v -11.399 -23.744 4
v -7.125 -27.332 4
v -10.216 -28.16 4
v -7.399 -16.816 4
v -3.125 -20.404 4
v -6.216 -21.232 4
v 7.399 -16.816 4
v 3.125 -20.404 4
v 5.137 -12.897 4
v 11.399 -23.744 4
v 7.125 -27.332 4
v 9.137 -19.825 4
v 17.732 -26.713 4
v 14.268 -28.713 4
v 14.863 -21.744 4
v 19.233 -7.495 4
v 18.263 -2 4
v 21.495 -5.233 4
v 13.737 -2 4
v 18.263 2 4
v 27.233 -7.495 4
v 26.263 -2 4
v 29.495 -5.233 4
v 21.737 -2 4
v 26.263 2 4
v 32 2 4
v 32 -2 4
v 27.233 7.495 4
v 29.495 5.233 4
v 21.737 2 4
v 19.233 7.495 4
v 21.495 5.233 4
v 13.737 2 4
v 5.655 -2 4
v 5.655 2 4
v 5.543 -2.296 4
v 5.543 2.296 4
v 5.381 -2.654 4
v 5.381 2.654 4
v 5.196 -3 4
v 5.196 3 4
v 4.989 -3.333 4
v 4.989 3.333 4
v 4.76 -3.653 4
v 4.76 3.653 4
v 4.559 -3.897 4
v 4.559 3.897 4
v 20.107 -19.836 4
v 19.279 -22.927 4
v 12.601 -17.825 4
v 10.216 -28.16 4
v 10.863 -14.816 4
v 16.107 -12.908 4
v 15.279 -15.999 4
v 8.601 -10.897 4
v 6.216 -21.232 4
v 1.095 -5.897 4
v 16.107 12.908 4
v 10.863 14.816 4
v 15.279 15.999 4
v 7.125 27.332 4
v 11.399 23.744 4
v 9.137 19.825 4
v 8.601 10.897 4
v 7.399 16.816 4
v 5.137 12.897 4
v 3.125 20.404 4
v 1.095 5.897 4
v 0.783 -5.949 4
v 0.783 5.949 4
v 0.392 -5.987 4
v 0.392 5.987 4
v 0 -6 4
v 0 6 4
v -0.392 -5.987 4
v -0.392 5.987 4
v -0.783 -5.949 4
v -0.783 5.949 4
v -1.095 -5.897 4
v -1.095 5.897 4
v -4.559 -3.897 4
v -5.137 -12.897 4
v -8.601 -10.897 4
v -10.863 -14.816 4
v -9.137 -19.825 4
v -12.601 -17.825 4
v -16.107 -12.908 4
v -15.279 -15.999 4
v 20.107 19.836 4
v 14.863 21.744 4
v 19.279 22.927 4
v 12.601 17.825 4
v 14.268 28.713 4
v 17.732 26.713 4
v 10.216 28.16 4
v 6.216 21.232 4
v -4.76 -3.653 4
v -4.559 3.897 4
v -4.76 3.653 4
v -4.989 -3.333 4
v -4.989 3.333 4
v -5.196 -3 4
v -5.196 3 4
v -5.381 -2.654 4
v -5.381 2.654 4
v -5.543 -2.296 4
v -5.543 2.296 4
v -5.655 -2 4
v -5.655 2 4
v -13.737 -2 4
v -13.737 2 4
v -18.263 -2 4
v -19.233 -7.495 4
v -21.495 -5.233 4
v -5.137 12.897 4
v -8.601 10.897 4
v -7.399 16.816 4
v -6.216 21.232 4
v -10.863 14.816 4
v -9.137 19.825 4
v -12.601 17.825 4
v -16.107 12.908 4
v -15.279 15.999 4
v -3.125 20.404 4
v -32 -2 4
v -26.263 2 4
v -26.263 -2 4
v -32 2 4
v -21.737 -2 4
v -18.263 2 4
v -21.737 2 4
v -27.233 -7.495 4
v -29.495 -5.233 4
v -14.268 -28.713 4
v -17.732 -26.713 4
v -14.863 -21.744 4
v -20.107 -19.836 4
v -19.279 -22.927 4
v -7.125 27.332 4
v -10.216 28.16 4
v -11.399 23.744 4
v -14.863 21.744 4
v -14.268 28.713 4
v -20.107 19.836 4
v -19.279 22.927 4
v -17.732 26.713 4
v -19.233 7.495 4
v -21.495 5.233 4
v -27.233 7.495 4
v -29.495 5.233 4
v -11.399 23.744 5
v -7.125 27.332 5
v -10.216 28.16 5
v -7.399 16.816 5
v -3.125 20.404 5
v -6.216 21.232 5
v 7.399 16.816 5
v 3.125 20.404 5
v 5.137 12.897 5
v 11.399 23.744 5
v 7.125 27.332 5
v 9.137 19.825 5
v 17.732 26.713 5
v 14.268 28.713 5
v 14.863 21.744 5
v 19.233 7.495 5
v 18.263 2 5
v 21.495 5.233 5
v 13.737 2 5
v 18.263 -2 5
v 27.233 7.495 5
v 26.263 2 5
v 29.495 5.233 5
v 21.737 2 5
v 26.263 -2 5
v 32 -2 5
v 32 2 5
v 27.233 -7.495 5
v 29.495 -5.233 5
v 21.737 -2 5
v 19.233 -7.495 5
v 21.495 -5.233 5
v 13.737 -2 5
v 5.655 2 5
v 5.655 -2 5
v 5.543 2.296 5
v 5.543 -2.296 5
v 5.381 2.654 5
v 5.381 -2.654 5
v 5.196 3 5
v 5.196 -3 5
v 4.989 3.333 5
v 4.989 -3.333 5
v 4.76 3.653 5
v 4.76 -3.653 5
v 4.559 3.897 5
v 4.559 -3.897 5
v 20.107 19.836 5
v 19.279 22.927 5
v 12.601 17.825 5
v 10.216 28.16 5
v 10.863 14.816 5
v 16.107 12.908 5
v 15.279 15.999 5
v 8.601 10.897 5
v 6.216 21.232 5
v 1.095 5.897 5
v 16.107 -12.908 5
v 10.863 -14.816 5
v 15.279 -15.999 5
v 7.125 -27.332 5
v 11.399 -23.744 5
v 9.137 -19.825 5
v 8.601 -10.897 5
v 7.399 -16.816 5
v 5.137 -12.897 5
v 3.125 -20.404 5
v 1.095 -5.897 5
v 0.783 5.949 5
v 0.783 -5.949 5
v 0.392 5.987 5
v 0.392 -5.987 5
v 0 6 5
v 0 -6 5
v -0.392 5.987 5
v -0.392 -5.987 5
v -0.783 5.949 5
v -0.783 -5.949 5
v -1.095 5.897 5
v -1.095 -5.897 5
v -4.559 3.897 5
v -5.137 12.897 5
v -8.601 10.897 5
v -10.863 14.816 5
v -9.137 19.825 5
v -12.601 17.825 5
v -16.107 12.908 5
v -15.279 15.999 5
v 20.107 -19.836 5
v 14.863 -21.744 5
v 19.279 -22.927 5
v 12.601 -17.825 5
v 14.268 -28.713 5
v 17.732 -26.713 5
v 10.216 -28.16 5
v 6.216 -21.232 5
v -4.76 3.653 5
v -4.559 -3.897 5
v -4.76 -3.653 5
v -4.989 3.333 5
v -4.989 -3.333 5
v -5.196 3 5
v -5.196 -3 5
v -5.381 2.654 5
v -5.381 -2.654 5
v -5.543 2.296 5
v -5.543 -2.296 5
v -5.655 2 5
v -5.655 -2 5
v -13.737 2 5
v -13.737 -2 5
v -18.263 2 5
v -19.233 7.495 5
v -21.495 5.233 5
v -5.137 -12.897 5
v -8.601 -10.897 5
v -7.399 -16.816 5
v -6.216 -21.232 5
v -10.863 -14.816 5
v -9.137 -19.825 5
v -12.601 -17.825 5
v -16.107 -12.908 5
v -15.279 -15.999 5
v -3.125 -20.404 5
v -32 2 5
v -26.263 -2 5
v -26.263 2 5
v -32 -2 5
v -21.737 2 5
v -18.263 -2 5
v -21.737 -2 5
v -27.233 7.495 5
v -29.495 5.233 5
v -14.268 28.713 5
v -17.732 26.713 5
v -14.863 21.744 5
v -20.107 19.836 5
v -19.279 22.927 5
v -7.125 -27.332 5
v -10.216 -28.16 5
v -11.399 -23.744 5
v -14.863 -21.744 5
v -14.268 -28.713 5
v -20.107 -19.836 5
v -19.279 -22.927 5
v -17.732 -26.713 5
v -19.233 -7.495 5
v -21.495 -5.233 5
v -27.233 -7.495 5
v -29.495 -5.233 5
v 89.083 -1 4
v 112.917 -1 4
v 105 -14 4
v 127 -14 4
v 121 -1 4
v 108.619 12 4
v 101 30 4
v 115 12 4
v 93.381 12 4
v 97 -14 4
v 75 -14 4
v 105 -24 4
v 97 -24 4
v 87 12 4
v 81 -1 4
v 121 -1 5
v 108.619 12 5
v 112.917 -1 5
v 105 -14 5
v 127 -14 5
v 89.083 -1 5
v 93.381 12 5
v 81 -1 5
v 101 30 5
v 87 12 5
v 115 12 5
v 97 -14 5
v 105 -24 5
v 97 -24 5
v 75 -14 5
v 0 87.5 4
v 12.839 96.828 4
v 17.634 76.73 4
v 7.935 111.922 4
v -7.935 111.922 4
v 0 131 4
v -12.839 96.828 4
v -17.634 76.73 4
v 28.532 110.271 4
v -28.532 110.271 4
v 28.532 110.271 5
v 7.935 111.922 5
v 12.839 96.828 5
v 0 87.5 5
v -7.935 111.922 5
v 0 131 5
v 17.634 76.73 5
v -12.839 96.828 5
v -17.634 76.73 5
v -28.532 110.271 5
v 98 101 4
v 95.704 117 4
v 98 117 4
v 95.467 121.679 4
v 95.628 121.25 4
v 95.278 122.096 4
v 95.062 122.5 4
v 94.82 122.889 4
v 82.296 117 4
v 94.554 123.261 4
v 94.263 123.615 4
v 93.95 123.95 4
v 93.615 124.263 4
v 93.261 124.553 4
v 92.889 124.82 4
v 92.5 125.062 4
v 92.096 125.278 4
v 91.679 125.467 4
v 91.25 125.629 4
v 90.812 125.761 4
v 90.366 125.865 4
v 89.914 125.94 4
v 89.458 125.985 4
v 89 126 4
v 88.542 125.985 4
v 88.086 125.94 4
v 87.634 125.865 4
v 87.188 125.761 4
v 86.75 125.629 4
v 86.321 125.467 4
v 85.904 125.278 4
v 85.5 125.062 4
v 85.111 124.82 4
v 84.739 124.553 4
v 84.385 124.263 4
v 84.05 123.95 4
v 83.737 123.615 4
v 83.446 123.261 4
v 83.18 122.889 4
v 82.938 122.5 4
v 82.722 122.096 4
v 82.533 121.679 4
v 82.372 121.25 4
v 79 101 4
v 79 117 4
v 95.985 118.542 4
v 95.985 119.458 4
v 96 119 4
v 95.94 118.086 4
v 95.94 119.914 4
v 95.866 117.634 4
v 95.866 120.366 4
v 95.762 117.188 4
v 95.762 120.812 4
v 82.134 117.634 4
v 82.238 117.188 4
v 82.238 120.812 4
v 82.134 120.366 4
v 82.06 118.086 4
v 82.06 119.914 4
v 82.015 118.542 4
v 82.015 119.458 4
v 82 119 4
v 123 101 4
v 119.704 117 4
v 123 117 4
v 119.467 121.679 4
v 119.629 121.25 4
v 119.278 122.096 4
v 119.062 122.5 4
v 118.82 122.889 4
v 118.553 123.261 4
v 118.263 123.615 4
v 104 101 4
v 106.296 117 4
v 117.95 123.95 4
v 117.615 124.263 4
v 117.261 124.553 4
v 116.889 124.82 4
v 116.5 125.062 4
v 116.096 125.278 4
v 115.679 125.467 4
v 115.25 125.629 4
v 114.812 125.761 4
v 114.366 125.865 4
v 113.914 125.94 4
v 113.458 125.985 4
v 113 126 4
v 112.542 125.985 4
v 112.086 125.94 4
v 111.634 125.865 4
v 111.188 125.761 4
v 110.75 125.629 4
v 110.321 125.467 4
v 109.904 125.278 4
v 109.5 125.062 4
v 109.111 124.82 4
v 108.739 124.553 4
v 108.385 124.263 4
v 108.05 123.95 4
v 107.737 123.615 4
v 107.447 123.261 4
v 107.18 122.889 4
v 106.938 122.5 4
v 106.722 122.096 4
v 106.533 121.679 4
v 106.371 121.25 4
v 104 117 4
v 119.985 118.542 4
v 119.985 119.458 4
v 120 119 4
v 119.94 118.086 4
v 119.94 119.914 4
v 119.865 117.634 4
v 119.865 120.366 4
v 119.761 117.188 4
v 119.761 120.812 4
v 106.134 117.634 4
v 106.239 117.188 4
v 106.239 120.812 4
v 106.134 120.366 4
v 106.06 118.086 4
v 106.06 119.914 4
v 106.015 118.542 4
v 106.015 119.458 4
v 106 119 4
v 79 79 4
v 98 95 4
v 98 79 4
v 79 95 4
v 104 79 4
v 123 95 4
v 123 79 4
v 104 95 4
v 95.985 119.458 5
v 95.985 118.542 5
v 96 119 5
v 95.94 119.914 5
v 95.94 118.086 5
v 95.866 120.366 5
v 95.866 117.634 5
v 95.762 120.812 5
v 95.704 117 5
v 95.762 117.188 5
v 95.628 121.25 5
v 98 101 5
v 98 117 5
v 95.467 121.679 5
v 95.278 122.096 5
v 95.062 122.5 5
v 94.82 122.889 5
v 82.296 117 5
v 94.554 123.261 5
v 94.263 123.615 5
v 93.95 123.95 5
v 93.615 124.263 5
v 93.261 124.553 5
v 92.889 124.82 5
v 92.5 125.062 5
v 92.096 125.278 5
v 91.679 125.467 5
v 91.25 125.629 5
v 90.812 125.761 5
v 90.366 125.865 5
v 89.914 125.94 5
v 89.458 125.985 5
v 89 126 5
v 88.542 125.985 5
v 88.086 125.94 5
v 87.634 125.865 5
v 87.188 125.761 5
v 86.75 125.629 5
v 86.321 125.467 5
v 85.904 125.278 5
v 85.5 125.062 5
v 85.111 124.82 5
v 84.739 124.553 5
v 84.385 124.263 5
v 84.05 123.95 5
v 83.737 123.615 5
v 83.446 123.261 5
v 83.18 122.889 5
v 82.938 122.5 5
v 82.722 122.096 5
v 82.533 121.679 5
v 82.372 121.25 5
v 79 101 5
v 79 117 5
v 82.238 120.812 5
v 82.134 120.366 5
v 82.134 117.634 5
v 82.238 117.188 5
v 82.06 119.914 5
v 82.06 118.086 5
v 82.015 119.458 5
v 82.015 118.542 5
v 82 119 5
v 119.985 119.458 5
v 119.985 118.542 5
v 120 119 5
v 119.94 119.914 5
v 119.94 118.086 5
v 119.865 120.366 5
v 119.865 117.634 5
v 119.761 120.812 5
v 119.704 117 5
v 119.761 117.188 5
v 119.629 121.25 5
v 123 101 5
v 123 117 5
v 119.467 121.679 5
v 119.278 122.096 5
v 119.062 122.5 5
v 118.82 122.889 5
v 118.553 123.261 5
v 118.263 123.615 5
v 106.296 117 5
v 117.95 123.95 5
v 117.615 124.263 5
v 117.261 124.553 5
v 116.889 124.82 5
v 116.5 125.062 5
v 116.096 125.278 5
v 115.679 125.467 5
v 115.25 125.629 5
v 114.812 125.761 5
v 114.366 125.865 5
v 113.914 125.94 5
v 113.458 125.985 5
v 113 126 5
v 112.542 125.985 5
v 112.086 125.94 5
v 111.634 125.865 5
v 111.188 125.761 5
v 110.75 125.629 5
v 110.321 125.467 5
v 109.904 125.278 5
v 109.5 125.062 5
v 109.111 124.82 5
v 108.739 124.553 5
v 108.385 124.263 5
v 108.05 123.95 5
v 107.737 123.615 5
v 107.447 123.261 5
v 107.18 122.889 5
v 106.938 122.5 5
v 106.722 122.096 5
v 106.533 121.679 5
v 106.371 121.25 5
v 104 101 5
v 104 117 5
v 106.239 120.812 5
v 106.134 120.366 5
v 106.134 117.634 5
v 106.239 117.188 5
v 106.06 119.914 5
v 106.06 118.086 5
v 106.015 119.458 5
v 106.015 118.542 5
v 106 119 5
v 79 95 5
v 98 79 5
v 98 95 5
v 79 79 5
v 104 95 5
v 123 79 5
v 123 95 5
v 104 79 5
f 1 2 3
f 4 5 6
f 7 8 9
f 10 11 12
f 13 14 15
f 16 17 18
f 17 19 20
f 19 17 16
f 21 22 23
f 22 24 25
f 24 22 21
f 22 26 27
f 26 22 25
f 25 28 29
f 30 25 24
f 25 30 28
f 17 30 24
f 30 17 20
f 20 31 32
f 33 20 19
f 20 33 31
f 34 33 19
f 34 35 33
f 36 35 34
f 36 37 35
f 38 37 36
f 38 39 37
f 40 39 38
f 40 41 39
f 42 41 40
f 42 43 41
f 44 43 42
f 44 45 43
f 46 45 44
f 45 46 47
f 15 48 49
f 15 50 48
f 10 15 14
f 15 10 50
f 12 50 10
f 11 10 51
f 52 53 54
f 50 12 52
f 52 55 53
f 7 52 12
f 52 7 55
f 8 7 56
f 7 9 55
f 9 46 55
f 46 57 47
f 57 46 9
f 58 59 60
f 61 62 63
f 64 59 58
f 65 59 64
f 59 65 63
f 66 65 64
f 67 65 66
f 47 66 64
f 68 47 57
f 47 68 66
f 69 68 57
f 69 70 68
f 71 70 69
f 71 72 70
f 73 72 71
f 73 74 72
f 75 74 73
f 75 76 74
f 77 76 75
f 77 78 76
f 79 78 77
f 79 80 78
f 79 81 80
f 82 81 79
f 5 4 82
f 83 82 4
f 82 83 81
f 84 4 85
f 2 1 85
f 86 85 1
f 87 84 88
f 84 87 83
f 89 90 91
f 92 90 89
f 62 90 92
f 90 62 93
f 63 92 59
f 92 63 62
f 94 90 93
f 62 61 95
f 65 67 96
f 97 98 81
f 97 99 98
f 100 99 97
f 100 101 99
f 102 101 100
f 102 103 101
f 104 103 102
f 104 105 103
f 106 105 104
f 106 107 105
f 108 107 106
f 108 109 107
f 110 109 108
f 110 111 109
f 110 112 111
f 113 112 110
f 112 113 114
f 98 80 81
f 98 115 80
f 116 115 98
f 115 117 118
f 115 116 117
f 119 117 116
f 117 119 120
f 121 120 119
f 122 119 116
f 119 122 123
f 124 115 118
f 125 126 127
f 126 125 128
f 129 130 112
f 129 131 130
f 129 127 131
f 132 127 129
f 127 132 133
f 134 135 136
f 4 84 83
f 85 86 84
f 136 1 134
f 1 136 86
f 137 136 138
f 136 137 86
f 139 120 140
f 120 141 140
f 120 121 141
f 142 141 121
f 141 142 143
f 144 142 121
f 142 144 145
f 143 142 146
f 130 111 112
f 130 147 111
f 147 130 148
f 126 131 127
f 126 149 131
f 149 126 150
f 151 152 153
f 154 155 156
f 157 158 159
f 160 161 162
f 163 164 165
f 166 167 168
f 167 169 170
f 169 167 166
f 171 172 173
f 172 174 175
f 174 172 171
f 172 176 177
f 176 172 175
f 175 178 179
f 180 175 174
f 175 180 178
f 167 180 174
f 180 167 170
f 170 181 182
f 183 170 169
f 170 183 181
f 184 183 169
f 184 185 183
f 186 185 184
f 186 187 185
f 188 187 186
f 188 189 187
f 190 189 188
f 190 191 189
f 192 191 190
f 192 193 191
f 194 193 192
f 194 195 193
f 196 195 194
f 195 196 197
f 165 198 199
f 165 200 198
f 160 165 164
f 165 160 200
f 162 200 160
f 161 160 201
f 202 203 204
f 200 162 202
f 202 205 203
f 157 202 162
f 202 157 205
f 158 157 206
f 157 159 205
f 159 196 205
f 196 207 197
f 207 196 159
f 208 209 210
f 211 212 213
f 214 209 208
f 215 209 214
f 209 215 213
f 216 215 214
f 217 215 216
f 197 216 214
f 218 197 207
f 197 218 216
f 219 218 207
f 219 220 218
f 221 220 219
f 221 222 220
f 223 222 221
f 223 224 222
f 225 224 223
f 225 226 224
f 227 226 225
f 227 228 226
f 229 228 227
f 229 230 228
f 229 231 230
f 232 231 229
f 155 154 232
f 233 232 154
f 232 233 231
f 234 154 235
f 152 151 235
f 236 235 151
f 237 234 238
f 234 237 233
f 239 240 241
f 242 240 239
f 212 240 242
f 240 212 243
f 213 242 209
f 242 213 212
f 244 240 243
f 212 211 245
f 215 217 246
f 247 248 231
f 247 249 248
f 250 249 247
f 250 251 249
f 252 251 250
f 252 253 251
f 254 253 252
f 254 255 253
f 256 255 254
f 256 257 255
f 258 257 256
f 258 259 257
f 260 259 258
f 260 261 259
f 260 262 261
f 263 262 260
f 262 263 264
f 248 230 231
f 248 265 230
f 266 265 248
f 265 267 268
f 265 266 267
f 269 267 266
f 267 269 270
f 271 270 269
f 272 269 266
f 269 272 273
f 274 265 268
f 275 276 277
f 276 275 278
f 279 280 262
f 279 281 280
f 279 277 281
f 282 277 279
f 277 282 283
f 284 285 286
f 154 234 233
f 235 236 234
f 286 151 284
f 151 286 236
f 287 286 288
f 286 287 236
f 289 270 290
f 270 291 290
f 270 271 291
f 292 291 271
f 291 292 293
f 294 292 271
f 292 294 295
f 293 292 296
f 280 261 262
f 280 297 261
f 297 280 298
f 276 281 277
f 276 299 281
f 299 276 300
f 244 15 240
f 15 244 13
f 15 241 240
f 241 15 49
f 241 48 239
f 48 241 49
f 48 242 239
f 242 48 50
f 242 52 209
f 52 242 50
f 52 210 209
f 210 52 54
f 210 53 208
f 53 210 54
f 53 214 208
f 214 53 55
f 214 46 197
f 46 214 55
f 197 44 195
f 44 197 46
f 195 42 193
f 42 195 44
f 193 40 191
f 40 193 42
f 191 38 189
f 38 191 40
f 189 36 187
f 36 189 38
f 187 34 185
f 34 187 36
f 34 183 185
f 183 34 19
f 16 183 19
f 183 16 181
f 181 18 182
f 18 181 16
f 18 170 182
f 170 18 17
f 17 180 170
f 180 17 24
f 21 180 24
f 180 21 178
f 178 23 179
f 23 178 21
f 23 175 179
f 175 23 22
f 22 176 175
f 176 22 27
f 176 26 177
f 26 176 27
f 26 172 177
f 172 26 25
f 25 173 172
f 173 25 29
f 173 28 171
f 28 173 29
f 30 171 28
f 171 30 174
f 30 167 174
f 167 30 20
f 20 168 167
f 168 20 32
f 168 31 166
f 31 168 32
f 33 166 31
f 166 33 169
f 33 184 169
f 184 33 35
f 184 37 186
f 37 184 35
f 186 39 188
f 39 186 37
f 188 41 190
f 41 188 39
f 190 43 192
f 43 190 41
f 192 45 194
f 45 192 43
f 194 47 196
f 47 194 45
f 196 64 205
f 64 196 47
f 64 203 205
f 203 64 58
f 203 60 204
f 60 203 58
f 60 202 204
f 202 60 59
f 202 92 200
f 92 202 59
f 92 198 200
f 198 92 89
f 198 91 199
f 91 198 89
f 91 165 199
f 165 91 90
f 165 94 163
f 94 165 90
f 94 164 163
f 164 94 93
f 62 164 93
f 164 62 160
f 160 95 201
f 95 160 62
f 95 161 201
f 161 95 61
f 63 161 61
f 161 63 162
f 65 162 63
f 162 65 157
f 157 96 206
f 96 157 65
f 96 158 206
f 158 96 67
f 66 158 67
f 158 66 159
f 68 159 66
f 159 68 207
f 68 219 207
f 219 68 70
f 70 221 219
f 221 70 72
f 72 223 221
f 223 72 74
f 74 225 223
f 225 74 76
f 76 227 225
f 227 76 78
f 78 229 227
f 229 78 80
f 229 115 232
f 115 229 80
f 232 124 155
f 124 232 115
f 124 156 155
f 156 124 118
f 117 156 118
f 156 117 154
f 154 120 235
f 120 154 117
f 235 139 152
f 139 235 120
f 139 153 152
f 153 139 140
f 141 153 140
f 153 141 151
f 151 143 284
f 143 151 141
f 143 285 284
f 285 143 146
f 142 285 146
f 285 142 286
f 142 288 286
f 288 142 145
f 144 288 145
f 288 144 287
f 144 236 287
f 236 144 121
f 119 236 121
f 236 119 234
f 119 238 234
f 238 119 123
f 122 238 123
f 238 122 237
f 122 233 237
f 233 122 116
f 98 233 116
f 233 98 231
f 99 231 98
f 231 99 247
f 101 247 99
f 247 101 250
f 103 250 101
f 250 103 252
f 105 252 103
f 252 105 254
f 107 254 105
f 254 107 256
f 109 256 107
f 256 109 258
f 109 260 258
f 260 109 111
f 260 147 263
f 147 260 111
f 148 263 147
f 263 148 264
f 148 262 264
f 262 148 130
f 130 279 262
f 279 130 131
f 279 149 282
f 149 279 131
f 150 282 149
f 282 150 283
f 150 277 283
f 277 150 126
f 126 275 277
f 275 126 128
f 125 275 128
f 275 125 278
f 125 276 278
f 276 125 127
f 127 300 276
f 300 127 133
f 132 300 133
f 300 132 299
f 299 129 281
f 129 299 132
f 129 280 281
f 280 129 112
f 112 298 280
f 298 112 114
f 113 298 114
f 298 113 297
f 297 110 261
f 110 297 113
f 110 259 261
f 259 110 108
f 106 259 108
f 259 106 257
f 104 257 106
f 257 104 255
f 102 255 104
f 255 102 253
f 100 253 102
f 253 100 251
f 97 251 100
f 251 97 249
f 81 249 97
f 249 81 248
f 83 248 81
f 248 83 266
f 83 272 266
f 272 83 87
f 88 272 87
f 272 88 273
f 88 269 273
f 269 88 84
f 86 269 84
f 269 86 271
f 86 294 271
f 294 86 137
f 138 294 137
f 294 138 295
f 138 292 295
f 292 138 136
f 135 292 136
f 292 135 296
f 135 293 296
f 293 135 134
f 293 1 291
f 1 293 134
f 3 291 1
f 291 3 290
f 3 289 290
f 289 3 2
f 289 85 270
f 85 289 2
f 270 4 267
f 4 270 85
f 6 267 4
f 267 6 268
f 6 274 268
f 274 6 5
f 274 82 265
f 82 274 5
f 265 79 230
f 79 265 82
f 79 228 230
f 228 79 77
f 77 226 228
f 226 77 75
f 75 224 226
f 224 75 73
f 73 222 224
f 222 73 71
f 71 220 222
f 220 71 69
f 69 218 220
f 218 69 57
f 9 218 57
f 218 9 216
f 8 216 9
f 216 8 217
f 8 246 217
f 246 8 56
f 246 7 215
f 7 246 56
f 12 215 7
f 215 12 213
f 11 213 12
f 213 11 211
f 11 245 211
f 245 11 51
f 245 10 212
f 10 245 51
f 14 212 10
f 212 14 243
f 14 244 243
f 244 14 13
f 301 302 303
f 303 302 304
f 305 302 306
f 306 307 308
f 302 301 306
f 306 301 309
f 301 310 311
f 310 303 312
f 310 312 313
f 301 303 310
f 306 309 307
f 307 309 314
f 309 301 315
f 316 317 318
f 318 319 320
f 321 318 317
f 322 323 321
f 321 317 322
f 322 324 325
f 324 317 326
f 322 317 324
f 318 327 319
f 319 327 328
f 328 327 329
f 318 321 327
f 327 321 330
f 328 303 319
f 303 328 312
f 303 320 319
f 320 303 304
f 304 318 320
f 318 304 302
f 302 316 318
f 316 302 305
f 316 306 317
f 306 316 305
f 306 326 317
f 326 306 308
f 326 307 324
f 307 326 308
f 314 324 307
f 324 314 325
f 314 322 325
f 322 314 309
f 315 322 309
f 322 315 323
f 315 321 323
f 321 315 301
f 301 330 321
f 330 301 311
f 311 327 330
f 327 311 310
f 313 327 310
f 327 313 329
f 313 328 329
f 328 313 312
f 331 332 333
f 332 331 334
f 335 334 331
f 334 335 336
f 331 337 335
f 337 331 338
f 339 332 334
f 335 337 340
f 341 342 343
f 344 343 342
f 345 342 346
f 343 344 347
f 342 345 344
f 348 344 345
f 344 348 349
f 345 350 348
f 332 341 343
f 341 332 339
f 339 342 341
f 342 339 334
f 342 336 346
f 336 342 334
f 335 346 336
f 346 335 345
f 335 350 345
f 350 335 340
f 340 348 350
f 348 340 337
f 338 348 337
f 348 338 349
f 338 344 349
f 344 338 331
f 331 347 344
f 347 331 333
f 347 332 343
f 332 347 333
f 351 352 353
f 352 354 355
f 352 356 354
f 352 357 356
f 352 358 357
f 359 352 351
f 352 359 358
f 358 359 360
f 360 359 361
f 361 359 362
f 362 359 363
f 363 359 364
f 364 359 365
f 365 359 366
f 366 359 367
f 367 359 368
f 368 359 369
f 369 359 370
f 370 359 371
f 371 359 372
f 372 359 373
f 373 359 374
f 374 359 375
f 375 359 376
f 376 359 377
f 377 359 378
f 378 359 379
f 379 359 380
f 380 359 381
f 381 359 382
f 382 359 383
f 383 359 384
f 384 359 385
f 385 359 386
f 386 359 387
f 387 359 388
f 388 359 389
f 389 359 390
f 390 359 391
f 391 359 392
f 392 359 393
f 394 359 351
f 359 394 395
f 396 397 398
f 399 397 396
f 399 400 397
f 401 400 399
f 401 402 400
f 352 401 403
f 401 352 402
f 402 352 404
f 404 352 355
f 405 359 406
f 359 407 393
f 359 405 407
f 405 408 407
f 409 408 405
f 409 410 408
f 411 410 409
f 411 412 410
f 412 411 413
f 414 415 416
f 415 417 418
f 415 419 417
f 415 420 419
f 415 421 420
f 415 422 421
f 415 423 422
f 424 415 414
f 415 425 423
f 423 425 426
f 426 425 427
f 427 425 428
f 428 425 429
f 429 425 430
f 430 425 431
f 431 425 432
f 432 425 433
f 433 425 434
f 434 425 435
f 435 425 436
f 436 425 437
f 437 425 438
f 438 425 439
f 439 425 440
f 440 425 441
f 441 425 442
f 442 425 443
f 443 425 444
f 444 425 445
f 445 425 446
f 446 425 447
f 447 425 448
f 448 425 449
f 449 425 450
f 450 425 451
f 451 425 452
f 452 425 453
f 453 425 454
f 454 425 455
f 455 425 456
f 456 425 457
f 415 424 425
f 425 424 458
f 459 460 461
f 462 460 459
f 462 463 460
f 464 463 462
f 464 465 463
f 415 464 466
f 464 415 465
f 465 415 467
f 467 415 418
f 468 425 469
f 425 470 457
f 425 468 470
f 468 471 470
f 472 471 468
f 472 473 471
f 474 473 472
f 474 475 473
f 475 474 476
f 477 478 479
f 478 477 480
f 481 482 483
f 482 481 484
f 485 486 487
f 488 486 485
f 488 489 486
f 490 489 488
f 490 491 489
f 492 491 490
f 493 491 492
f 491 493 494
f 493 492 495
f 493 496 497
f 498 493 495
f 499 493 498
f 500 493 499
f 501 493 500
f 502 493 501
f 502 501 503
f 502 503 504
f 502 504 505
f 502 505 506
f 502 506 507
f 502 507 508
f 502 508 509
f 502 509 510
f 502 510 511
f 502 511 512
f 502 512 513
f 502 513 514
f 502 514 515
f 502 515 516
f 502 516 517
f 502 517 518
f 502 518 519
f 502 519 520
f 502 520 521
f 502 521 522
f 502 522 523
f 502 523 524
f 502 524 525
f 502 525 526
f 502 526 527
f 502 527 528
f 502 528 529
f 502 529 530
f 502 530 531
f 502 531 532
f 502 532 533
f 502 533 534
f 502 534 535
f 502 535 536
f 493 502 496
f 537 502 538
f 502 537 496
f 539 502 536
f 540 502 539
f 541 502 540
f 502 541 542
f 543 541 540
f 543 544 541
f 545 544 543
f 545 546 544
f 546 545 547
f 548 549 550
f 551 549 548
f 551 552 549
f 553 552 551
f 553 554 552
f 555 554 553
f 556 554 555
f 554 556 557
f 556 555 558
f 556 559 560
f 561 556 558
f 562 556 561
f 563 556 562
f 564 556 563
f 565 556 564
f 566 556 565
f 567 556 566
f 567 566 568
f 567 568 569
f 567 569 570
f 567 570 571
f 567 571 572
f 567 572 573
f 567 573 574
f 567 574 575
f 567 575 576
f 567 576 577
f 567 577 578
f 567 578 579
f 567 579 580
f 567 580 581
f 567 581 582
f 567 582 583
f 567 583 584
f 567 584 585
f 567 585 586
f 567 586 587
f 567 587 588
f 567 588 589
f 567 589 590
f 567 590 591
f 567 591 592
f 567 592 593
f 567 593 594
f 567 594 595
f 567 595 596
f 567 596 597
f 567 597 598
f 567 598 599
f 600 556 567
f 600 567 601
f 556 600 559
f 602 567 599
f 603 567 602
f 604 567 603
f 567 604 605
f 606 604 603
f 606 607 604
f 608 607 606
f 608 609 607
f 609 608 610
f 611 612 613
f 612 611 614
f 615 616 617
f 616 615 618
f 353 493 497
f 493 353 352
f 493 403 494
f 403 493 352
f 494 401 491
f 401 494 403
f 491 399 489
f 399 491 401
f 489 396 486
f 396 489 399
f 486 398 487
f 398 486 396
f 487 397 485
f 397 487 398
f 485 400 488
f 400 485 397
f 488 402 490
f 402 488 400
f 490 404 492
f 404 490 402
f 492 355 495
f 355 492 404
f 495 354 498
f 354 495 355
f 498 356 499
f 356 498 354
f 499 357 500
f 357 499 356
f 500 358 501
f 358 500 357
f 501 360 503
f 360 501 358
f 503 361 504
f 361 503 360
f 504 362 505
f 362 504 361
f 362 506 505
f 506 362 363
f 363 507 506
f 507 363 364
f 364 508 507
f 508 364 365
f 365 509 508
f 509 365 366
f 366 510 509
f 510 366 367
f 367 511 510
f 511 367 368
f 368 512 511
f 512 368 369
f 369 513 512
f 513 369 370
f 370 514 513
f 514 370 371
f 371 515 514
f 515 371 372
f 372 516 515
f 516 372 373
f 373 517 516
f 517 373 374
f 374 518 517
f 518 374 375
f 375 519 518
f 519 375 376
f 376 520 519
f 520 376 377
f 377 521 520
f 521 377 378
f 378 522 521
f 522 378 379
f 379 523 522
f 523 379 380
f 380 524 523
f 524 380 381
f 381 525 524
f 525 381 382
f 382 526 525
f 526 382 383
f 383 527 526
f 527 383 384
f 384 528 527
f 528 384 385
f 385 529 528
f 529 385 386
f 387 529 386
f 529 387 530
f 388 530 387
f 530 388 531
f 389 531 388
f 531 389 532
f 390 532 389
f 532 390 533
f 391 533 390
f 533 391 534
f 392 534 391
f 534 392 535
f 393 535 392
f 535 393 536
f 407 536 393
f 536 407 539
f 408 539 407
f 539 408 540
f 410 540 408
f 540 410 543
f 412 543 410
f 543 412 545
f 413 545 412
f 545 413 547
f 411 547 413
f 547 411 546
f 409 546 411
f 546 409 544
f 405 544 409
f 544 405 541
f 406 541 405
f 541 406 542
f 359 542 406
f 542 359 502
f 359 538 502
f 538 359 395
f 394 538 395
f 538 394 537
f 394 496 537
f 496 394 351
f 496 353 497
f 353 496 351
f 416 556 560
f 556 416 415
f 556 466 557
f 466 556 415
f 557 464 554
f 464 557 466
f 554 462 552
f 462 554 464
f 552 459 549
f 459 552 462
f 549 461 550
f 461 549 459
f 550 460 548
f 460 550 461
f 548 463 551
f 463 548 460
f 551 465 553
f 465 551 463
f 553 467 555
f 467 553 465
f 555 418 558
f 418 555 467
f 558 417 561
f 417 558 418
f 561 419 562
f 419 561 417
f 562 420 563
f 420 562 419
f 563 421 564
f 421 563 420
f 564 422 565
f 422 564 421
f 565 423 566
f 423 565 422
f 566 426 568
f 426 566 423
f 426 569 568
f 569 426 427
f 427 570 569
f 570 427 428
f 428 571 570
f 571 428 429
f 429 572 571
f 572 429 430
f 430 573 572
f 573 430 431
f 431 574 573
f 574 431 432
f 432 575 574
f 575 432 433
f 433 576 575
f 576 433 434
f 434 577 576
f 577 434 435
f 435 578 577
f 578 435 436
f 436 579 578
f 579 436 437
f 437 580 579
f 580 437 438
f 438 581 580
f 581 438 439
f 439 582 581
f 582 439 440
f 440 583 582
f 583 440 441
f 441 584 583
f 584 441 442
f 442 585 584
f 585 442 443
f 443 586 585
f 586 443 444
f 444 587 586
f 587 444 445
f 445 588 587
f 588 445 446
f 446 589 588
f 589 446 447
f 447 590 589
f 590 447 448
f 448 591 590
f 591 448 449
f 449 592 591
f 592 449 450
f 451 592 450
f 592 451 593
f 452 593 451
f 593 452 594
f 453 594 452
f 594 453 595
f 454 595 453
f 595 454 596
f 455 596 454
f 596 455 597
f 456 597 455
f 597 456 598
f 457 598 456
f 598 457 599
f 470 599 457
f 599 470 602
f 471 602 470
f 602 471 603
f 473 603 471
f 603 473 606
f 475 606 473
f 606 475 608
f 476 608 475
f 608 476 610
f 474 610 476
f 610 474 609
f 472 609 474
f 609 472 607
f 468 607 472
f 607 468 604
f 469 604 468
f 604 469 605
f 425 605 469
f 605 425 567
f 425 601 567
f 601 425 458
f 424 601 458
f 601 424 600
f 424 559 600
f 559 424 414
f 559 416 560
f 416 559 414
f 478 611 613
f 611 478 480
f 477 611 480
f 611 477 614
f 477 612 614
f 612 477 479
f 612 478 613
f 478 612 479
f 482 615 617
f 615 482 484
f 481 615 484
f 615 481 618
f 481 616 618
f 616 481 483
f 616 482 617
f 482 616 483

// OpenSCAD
// file: comun.scad
// Impronta 3D — Posavasos navideños x4 (diseño propio, 2 colores)
// Cuatro posavasos de 95 mm con un dibujo incrustado al ras (copo, arbolito, estrella y regalo).
// Se imprimen acostados; el dibujo es la segunda pieza de color (AMS).
d = 95; h = 5; prof = 1;
$fn = 96;
function estrella(r, k, n) = [for (i = [0 : 2 * n - 1]) let(a = 90 + i * 180 / n, rr = (i % 2 == 0) ? r : r * k) [rr * cos(a), rr * sin(a)]];
module copo() { for (a = [0 : 60 : 359]) rotate(a) { translate([0, -2]) square([32, 4]); for (p = [14, 22]) translate([p, 0]) for (s = [1, -1]) rotate(s * 45) translate([0, -1.6]) square([9, 3.2]); } circle(r = 6); }
module arbol() { for (i = [0 : 2]) translate([0, -14 + i * 13]) polygon([[-26 + i * 6, 0], [26 - i * 6, 0], [0, 24 - i * 3]]); translate([-4, -24]) square([8, 10]); }
module regalo() { difference() { translate([-22, -22]) square([44, 38]); translate([-3, -23]) square([6, 40]); translate([-23, -6]) square([46, 6]); } translate([-12, 18]) circle(r = 7); translate([12, 18]) circle(r = 7); }
module dibujo(i) { if (i == 0) copo(); else if (i == 1) arbol(); else if (i == 2) polygon(estrella(30, 0.45, 5)); else regalo(); }
module grilla() { for (i = [0 : 3]) translate([(i % 2) * (d + 6), floor(i / 2) * (d + 6), 0]) children(); }
module base(i) { difference() { cylinder(d = d, h = h); translate([0, 0, h - prof]) linear_extrude(prof + 1) offset(r = 0.15) dibujo(i); } }
module incrustado(i) { translate([0, 0, h - prof]) linear_extrude(prof) dibujo(i); }
// main file
include <comun.scad>
for (i = [0 : 3]) translate([(i % 2) * (d + 6), floor(i / 2) * (d + 6), 0]) incrustado(i);
